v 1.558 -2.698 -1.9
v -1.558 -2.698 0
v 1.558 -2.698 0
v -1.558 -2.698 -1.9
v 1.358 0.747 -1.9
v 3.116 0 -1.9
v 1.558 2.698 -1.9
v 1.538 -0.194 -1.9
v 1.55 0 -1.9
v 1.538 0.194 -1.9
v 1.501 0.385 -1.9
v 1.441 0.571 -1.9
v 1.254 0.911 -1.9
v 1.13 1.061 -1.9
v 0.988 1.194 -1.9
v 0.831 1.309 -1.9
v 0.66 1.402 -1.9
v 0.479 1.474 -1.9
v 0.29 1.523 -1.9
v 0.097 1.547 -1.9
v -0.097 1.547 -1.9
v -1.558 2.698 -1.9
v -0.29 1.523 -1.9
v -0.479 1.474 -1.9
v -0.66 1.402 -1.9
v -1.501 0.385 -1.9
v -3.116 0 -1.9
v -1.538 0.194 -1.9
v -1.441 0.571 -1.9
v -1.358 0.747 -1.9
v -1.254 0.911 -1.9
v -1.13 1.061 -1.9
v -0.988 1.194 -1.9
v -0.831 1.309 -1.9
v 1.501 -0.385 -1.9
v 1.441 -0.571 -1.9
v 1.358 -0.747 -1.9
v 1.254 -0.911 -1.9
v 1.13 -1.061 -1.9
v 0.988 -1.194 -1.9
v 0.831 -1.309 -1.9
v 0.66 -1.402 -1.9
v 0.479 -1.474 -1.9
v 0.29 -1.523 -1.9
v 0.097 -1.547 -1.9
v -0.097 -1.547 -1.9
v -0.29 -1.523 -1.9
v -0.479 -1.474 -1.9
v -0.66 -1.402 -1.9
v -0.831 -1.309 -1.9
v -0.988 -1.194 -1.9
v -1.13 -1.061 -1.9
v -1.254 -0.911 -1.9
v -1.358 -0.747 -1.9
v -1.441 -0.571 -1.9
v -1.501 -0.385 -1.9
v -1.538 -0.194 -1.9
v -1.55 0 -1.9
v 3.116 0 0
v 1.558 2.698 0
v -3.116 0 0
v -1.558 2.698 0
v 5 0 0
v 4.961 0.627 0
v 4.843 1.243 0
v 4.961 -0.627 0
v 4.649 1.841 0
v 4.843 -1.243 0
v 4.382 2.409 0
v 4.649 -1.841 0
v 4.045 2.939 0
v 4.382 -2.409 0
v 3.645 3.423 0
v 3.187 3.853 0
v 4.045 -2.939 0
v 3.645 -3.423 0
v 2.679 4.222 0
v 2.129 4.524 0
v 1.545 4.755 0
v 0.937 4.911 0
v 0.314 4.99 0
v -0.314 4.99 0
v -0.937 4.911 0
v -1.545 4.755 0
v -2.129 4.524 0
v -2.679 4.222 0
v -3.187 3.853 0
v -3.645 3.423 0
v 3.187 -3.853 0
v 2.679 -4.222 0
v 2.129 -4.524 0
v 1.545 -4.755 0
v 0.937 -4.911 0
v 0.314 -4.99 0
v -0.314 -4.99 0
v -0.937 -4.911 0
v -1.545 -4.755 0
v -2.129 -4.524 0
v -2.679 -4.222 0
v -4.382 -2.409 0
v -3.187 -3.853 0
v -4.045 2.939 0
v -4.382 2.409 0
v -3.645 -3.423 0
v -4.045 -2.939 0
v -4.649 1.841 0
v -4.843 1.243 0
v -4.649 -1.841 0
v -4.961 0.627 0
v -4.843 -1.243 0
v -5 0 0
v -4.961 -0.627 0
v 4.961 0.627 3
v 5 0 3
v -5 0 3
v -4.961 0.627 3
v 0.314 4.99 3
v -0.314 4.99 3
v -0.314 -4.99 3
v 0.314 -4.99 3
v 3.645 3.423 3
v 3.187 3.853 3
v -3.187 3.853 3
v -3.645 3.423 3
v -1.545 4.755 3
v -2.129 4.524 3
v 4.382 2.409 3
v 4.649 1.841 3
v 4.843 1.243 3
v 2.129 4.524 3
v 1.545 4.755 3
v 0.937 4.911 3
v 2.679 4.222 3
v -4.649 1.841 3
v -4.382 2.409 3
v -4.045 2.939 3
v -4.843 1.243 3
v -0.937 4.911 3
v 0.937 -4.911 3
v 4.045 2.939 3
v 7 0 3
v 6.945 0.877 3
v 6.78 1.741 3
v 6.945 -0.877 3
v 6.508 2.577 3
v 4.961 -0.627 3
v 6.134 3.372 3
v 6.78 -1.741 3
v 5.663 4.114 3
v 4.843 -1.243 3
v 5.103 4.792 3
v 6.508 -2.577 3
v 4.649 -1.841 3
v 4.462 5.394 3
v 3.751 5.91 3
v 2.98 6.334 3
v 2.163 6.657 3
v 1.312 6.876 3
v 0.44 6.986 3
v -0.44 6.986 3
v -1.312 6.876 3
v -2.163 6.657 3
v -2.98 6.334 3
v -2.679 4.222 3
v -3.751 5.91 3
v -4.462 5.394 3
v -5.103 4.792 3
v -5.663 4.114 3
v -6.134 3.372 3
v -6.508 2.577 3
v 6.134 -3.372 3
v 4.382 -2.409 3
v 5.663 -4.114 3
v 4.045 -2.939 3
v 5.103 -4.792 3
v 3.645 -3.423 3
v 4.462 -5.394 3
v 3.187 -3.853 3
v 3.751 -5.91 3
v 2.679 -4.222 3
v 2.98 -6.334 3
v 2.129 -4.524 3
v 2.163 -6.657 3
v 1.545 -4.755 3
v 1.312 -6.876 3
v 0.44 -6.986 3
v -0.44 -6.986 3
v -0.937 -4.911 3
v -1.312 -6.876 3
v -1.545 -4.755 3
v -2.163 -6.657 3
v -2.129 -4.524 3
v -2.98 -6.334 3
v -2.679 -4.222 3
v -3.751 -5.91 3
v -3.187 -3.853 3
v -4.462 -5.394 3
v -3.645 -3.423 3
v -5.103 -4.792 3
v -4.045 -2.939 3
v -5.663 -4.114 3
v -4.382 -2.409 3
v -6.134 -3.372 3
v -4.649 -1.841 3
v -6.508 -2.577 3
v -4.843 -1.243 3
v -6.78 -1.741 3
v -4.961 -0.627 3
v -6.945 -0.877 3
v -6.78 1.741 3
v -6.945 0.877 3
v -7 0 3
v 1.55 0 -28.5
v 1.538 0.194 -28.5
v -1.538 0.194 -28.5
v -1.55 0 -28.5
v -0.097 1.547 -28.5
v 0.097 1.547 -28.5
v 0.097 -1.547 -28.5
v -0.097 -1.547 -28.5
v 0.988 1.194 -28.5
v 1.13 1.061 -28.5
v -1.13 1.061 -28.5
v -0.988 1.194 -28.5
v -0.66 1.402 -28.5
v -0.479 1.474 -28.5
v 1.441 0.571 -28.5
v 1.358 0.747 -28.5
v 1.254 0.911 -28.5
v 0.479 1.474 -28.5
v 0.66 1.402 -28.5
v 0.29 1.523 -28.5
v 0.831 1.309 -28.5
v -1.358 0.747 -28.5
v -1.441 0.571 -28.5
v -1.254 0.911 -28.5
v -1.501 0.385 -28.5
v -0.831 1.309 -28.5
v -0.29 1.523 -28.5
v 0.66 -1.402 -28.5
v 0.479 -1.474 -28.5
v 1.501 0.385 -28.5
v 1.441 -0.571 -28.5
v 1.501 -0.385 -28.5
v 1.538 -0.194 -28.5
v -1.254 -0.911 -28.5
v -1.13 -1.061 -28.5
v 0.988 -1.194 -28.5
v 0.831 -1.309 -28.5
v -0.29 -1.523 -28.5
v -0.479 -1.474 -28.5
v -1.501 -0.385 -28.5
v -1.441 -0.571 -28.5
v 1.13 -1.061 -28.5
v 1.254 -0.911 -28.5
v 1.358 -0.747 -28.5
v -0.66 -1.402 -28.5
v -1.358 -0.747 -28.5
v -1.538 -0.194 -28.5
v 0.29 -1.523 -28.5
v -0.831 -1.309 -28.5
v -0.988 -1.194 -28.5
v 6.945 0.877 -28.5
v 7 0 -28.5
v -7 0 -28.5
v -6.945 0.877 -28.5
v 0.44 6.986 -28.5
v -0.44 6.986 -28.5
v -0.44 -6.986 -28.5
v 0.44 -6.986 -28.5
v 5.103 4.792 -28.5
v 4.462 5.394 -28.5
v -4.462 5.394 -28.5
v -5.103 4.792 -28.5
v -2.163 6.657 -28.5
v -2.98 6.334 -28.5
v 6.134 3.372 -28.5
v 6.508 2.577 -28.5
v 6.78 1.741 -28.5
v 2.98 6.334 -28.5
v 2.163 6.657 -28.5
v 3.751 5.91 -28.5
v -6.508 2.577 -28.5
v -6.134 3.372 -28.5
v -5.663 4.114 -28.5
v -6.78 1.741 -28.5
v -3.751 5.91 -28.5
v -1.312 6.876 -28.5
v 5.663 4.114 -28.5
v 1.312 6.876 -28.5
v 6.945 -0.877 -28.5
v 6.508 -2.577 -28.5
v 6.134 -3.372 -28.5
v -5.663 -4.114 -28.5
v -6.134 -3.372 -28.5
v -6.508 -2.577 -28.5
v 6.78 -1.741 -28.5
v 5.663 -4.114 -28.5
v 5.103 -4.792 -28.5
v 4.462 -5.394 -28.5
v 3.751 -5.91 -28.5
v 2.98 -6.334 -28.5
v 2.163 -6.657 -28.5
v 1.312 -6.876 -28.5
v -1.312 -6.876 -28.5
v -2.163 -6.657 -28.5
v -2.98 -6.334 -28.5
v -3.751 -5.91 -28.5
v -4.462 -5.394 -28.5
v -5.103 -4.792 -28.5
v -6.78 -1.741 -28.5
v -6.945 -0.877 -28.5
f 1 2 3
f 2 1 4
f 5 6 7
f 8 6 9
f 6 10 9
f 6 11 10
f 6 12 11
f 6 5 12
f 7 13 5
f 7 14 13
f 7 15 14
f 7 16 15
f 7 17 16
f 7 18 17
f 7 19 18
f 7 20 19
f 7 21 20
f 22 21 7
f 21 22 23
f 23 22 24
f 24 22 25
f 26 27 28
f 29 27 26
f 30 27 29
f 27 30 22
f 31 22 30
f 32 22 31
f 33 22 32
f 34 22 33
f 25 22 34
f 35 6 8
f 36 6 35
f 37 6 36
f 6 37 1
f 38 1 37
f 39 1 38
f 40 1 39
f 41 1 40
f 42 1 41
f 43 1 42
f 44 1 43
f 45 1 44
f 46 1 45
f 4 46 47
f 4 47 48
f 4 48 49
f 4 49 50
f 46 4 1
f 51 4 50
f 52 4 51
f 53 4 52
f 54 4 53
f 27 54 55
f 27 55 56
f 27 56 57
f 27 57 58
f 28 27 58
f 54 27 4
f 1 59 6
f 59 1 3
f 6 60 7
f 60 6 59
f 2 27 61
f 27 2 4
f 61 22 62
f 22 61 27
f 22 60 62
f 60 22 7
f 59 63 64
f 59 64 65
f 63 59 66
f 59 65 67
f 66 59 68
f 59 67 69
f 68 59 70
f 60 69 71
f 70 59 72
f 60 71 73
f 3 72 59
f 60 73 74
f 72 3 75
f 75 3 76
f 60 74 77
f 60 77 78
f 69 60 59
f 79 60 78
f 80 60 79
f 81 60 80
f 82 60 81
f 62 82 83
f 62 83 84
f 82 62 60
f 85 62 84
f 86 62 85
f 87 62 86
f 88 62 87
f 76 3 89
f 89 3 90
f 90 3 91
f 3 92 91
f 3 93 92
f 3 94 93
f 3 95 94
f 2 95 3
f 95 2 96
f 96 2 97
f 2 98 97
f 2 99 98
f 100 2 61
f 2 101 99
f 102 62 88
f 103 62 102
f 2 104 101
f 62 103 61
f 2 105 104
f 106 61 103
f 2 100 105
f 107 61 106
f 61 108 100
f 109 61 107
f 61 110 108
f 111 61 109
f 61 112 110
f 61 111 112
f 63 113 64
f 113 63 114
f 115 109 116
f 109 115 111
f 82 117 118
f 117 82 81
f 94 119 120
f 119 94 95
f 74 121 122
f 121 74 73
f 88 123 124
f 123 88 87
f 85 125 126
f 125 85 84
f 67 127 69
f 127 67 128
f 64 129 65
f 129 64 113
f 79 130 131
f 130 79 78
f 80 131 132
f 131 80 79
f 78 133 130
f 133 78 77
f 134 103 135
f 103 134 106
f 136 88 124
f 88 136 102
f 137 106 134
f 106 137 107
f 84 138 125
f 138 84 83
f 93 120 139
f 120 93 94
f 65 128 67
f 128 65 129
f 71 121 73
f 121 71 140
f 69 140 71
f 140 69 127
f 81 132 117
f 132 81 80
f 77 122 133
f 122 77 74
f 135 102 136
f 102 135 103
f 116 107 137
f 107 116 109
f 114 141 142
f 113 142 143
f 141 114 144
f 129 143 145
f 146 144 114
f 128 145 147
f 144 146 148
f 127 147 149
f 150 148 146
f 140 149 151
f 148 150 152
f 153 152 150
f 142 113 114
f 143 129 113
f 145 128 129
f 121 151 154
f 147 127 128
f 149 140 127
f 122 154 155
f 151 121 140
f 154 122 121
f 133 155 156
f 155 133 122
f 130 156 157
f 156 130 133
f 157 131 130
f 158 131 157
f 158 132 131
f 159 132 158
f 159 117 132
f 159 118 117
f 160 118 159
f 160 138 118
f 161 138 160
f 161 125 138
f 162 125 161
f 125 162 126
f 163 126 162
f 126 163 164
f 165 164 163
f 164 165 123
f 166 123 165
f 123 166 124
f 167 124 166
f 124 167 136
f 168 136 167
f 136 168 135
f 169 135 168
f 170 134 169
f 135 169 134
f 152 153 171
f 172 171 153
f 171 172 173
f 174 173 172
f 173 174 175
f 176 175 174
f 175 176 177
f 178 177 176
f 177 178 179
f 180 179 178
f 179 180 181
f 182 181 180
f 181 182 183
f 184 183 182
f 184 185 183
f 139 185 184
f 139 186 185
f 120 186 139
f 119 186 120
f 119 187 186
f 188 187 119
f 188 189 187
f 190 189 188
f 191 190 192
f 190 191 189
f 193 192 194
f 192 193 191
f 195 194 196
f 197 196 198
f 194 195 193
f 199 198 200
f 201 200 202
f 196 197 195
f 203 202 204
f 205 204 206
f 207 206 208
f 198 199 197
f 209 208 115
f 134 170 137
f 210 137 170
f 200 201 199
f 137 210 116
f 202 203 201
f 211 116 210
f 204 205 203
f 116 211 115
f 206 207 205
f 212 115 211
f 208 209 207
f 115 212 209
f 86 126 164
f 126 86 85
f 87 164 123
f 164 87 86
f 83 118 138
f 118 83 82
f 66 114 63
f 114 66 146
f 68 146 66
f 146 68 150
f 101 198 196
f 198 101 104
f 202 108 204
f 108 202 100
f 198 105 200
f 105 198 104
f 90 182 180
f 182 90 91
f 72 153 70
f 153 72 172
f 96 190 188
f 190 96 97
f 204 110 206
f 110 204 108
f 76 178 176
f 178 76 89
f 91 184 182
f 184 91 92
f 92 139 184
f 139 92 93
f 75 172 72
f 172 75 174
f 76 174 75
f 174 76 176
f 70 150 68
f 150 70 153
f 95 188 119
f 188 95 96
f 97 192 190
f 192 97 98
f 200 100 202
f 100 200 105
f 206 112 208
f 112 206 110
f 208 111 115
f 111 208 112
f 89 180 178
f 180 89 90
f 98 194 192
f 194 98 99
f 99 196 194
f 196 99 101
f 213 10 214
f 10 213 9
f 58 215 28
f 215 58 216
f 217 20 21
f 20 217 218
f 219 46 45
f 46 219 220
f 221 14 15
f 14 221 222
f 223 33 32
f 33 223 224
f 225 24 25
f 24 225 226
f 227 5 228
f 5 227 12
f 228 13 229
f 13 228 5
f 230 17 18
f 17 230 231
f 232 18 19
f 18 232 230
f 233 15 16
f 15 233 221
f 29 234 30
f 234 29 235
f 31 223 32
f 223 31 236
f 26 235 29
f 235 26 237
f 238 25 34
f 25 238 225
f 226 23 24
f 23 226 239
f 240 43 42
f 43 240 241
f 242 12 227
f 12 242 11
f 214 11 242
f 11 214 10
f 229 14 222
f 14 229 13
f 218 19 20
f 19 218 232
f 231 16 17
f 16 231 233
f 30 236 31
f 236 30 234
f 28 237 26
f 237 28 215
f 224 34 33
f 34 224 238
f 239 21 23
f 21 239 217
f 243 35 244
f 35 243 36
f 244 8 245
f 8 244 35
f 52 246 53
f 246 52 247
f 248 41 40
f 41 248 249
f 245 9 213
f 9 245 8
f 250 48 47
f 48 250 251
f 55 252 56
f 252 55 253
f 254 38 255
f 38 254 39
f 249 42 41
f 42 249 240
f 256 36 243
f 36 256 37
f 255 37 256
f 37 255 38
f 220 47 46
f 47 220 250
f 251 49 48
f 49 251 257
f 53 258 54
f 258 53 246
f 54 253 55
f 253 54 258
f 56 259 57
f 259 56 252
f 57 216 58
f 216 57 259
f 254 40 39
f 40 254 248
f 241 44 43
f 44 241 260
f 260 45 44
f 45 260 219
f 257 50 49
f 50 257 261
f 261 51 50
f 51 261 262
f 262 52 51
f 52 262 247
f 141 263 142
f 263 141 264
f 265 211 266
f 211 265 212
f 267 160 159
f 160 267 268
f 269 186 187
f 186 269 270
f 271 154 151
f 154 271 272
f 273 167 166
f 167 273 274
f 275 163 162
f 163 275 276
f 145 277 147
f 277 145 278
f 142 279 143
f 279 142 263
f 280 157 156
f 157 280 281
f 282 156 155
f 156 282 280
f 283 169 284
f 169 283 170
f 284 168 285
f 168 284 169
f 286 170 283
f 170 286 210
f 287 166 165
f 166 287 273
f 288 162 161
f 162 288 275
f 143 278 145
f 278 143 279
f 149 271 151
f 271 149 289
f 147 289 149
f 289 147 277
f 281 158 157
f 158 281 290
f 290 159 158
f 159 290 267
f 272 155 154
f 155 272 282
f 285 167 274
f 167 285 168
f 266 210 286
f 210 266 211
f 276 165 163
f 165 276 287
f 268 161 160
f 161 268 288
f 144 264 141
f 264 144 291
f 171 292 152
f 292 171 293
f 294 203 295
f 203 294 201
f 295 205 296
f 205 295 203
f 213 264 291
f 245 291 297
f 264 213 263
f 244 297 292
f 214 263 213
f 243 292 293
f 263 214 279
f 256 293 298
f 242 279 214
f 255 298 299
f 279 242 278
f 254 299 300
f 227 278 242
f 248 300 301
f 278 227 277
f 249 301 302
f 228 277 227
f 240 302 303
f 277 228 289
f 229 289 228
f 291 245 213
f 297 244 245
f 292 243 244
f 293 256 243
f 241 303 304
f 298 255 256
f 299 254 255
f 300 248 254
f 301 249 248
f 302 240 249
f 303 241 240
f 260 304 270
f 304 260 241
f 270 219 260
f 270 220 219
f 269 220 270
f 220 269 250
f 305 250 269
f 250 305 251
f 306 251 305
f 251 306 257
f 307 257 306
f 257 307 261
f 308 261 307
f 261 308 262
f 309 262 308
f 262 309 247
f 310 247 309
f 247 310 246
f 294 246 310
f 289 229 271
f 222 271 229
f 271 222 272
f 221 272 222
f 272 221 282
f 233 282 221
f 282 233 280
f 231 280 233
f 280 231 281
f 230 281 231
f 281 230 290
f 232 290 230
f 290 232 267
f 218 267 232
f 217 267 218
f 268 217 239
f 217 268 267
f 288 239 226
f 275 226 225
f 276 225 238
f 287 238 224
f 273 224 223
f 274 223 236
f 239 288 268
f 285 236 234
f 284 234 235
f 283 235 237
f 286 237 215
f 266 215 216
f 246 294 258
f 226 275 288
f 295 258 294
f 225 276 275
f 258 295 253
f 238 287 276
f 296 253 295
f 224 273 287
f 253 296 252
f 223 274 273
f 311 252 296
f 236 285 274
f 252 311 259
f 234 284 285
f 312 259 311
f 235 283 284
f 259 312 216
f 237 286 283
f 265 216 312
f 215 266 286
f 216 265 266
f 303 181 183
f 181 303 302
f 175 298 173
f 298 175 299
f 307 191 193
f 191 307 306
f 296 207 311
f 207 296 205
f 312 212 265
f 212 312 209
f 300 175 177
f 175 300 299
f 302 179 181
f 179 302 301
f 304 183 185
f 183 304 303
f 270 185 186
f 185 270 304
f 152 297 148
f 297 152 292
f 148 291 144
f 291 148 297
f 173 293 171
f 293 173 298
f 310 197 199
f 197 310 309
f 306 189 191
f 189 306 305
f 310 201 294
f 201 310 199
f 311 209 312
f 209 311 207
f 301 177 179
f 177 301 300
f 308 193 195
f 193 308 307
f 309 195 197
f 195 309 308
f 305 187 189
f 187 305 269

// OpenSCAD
$fn = 50;


difference() {
	union() {
		translate(v = [0, 0, -28.5000000000]) {
			cylinder(h = 31.5000000000, r = 7.0000000000);
		}
	}
	union() {
		translate(v = [0, 0, 0]) {
			rotate(a = [0, 0, 0]) {
				difference() {
					union() {
						translate(v = [0, 0, -1.9000000000]) {
							linear_extrude(height = 1.9000000000) {
								polygon(points = [[3.1158000000, 0.0000000000], [1.5579000000, 2.6983619531], [-1.5579000000, 2.6983619531], [-3.1158000000, 0.0000000000], [-1.5579000000, -2.6983619531], [1.5579000000, -2.6983619531]]);
							}
						}
					}
					union();
				}
			}
		}
		#cylinder(h = 3, r = 5.0000000000);
		#translate(v = [0, 0, -100.0000000000]) {
			cylinder(h = 200, r = 1.5500000000);
		}
	}
}
